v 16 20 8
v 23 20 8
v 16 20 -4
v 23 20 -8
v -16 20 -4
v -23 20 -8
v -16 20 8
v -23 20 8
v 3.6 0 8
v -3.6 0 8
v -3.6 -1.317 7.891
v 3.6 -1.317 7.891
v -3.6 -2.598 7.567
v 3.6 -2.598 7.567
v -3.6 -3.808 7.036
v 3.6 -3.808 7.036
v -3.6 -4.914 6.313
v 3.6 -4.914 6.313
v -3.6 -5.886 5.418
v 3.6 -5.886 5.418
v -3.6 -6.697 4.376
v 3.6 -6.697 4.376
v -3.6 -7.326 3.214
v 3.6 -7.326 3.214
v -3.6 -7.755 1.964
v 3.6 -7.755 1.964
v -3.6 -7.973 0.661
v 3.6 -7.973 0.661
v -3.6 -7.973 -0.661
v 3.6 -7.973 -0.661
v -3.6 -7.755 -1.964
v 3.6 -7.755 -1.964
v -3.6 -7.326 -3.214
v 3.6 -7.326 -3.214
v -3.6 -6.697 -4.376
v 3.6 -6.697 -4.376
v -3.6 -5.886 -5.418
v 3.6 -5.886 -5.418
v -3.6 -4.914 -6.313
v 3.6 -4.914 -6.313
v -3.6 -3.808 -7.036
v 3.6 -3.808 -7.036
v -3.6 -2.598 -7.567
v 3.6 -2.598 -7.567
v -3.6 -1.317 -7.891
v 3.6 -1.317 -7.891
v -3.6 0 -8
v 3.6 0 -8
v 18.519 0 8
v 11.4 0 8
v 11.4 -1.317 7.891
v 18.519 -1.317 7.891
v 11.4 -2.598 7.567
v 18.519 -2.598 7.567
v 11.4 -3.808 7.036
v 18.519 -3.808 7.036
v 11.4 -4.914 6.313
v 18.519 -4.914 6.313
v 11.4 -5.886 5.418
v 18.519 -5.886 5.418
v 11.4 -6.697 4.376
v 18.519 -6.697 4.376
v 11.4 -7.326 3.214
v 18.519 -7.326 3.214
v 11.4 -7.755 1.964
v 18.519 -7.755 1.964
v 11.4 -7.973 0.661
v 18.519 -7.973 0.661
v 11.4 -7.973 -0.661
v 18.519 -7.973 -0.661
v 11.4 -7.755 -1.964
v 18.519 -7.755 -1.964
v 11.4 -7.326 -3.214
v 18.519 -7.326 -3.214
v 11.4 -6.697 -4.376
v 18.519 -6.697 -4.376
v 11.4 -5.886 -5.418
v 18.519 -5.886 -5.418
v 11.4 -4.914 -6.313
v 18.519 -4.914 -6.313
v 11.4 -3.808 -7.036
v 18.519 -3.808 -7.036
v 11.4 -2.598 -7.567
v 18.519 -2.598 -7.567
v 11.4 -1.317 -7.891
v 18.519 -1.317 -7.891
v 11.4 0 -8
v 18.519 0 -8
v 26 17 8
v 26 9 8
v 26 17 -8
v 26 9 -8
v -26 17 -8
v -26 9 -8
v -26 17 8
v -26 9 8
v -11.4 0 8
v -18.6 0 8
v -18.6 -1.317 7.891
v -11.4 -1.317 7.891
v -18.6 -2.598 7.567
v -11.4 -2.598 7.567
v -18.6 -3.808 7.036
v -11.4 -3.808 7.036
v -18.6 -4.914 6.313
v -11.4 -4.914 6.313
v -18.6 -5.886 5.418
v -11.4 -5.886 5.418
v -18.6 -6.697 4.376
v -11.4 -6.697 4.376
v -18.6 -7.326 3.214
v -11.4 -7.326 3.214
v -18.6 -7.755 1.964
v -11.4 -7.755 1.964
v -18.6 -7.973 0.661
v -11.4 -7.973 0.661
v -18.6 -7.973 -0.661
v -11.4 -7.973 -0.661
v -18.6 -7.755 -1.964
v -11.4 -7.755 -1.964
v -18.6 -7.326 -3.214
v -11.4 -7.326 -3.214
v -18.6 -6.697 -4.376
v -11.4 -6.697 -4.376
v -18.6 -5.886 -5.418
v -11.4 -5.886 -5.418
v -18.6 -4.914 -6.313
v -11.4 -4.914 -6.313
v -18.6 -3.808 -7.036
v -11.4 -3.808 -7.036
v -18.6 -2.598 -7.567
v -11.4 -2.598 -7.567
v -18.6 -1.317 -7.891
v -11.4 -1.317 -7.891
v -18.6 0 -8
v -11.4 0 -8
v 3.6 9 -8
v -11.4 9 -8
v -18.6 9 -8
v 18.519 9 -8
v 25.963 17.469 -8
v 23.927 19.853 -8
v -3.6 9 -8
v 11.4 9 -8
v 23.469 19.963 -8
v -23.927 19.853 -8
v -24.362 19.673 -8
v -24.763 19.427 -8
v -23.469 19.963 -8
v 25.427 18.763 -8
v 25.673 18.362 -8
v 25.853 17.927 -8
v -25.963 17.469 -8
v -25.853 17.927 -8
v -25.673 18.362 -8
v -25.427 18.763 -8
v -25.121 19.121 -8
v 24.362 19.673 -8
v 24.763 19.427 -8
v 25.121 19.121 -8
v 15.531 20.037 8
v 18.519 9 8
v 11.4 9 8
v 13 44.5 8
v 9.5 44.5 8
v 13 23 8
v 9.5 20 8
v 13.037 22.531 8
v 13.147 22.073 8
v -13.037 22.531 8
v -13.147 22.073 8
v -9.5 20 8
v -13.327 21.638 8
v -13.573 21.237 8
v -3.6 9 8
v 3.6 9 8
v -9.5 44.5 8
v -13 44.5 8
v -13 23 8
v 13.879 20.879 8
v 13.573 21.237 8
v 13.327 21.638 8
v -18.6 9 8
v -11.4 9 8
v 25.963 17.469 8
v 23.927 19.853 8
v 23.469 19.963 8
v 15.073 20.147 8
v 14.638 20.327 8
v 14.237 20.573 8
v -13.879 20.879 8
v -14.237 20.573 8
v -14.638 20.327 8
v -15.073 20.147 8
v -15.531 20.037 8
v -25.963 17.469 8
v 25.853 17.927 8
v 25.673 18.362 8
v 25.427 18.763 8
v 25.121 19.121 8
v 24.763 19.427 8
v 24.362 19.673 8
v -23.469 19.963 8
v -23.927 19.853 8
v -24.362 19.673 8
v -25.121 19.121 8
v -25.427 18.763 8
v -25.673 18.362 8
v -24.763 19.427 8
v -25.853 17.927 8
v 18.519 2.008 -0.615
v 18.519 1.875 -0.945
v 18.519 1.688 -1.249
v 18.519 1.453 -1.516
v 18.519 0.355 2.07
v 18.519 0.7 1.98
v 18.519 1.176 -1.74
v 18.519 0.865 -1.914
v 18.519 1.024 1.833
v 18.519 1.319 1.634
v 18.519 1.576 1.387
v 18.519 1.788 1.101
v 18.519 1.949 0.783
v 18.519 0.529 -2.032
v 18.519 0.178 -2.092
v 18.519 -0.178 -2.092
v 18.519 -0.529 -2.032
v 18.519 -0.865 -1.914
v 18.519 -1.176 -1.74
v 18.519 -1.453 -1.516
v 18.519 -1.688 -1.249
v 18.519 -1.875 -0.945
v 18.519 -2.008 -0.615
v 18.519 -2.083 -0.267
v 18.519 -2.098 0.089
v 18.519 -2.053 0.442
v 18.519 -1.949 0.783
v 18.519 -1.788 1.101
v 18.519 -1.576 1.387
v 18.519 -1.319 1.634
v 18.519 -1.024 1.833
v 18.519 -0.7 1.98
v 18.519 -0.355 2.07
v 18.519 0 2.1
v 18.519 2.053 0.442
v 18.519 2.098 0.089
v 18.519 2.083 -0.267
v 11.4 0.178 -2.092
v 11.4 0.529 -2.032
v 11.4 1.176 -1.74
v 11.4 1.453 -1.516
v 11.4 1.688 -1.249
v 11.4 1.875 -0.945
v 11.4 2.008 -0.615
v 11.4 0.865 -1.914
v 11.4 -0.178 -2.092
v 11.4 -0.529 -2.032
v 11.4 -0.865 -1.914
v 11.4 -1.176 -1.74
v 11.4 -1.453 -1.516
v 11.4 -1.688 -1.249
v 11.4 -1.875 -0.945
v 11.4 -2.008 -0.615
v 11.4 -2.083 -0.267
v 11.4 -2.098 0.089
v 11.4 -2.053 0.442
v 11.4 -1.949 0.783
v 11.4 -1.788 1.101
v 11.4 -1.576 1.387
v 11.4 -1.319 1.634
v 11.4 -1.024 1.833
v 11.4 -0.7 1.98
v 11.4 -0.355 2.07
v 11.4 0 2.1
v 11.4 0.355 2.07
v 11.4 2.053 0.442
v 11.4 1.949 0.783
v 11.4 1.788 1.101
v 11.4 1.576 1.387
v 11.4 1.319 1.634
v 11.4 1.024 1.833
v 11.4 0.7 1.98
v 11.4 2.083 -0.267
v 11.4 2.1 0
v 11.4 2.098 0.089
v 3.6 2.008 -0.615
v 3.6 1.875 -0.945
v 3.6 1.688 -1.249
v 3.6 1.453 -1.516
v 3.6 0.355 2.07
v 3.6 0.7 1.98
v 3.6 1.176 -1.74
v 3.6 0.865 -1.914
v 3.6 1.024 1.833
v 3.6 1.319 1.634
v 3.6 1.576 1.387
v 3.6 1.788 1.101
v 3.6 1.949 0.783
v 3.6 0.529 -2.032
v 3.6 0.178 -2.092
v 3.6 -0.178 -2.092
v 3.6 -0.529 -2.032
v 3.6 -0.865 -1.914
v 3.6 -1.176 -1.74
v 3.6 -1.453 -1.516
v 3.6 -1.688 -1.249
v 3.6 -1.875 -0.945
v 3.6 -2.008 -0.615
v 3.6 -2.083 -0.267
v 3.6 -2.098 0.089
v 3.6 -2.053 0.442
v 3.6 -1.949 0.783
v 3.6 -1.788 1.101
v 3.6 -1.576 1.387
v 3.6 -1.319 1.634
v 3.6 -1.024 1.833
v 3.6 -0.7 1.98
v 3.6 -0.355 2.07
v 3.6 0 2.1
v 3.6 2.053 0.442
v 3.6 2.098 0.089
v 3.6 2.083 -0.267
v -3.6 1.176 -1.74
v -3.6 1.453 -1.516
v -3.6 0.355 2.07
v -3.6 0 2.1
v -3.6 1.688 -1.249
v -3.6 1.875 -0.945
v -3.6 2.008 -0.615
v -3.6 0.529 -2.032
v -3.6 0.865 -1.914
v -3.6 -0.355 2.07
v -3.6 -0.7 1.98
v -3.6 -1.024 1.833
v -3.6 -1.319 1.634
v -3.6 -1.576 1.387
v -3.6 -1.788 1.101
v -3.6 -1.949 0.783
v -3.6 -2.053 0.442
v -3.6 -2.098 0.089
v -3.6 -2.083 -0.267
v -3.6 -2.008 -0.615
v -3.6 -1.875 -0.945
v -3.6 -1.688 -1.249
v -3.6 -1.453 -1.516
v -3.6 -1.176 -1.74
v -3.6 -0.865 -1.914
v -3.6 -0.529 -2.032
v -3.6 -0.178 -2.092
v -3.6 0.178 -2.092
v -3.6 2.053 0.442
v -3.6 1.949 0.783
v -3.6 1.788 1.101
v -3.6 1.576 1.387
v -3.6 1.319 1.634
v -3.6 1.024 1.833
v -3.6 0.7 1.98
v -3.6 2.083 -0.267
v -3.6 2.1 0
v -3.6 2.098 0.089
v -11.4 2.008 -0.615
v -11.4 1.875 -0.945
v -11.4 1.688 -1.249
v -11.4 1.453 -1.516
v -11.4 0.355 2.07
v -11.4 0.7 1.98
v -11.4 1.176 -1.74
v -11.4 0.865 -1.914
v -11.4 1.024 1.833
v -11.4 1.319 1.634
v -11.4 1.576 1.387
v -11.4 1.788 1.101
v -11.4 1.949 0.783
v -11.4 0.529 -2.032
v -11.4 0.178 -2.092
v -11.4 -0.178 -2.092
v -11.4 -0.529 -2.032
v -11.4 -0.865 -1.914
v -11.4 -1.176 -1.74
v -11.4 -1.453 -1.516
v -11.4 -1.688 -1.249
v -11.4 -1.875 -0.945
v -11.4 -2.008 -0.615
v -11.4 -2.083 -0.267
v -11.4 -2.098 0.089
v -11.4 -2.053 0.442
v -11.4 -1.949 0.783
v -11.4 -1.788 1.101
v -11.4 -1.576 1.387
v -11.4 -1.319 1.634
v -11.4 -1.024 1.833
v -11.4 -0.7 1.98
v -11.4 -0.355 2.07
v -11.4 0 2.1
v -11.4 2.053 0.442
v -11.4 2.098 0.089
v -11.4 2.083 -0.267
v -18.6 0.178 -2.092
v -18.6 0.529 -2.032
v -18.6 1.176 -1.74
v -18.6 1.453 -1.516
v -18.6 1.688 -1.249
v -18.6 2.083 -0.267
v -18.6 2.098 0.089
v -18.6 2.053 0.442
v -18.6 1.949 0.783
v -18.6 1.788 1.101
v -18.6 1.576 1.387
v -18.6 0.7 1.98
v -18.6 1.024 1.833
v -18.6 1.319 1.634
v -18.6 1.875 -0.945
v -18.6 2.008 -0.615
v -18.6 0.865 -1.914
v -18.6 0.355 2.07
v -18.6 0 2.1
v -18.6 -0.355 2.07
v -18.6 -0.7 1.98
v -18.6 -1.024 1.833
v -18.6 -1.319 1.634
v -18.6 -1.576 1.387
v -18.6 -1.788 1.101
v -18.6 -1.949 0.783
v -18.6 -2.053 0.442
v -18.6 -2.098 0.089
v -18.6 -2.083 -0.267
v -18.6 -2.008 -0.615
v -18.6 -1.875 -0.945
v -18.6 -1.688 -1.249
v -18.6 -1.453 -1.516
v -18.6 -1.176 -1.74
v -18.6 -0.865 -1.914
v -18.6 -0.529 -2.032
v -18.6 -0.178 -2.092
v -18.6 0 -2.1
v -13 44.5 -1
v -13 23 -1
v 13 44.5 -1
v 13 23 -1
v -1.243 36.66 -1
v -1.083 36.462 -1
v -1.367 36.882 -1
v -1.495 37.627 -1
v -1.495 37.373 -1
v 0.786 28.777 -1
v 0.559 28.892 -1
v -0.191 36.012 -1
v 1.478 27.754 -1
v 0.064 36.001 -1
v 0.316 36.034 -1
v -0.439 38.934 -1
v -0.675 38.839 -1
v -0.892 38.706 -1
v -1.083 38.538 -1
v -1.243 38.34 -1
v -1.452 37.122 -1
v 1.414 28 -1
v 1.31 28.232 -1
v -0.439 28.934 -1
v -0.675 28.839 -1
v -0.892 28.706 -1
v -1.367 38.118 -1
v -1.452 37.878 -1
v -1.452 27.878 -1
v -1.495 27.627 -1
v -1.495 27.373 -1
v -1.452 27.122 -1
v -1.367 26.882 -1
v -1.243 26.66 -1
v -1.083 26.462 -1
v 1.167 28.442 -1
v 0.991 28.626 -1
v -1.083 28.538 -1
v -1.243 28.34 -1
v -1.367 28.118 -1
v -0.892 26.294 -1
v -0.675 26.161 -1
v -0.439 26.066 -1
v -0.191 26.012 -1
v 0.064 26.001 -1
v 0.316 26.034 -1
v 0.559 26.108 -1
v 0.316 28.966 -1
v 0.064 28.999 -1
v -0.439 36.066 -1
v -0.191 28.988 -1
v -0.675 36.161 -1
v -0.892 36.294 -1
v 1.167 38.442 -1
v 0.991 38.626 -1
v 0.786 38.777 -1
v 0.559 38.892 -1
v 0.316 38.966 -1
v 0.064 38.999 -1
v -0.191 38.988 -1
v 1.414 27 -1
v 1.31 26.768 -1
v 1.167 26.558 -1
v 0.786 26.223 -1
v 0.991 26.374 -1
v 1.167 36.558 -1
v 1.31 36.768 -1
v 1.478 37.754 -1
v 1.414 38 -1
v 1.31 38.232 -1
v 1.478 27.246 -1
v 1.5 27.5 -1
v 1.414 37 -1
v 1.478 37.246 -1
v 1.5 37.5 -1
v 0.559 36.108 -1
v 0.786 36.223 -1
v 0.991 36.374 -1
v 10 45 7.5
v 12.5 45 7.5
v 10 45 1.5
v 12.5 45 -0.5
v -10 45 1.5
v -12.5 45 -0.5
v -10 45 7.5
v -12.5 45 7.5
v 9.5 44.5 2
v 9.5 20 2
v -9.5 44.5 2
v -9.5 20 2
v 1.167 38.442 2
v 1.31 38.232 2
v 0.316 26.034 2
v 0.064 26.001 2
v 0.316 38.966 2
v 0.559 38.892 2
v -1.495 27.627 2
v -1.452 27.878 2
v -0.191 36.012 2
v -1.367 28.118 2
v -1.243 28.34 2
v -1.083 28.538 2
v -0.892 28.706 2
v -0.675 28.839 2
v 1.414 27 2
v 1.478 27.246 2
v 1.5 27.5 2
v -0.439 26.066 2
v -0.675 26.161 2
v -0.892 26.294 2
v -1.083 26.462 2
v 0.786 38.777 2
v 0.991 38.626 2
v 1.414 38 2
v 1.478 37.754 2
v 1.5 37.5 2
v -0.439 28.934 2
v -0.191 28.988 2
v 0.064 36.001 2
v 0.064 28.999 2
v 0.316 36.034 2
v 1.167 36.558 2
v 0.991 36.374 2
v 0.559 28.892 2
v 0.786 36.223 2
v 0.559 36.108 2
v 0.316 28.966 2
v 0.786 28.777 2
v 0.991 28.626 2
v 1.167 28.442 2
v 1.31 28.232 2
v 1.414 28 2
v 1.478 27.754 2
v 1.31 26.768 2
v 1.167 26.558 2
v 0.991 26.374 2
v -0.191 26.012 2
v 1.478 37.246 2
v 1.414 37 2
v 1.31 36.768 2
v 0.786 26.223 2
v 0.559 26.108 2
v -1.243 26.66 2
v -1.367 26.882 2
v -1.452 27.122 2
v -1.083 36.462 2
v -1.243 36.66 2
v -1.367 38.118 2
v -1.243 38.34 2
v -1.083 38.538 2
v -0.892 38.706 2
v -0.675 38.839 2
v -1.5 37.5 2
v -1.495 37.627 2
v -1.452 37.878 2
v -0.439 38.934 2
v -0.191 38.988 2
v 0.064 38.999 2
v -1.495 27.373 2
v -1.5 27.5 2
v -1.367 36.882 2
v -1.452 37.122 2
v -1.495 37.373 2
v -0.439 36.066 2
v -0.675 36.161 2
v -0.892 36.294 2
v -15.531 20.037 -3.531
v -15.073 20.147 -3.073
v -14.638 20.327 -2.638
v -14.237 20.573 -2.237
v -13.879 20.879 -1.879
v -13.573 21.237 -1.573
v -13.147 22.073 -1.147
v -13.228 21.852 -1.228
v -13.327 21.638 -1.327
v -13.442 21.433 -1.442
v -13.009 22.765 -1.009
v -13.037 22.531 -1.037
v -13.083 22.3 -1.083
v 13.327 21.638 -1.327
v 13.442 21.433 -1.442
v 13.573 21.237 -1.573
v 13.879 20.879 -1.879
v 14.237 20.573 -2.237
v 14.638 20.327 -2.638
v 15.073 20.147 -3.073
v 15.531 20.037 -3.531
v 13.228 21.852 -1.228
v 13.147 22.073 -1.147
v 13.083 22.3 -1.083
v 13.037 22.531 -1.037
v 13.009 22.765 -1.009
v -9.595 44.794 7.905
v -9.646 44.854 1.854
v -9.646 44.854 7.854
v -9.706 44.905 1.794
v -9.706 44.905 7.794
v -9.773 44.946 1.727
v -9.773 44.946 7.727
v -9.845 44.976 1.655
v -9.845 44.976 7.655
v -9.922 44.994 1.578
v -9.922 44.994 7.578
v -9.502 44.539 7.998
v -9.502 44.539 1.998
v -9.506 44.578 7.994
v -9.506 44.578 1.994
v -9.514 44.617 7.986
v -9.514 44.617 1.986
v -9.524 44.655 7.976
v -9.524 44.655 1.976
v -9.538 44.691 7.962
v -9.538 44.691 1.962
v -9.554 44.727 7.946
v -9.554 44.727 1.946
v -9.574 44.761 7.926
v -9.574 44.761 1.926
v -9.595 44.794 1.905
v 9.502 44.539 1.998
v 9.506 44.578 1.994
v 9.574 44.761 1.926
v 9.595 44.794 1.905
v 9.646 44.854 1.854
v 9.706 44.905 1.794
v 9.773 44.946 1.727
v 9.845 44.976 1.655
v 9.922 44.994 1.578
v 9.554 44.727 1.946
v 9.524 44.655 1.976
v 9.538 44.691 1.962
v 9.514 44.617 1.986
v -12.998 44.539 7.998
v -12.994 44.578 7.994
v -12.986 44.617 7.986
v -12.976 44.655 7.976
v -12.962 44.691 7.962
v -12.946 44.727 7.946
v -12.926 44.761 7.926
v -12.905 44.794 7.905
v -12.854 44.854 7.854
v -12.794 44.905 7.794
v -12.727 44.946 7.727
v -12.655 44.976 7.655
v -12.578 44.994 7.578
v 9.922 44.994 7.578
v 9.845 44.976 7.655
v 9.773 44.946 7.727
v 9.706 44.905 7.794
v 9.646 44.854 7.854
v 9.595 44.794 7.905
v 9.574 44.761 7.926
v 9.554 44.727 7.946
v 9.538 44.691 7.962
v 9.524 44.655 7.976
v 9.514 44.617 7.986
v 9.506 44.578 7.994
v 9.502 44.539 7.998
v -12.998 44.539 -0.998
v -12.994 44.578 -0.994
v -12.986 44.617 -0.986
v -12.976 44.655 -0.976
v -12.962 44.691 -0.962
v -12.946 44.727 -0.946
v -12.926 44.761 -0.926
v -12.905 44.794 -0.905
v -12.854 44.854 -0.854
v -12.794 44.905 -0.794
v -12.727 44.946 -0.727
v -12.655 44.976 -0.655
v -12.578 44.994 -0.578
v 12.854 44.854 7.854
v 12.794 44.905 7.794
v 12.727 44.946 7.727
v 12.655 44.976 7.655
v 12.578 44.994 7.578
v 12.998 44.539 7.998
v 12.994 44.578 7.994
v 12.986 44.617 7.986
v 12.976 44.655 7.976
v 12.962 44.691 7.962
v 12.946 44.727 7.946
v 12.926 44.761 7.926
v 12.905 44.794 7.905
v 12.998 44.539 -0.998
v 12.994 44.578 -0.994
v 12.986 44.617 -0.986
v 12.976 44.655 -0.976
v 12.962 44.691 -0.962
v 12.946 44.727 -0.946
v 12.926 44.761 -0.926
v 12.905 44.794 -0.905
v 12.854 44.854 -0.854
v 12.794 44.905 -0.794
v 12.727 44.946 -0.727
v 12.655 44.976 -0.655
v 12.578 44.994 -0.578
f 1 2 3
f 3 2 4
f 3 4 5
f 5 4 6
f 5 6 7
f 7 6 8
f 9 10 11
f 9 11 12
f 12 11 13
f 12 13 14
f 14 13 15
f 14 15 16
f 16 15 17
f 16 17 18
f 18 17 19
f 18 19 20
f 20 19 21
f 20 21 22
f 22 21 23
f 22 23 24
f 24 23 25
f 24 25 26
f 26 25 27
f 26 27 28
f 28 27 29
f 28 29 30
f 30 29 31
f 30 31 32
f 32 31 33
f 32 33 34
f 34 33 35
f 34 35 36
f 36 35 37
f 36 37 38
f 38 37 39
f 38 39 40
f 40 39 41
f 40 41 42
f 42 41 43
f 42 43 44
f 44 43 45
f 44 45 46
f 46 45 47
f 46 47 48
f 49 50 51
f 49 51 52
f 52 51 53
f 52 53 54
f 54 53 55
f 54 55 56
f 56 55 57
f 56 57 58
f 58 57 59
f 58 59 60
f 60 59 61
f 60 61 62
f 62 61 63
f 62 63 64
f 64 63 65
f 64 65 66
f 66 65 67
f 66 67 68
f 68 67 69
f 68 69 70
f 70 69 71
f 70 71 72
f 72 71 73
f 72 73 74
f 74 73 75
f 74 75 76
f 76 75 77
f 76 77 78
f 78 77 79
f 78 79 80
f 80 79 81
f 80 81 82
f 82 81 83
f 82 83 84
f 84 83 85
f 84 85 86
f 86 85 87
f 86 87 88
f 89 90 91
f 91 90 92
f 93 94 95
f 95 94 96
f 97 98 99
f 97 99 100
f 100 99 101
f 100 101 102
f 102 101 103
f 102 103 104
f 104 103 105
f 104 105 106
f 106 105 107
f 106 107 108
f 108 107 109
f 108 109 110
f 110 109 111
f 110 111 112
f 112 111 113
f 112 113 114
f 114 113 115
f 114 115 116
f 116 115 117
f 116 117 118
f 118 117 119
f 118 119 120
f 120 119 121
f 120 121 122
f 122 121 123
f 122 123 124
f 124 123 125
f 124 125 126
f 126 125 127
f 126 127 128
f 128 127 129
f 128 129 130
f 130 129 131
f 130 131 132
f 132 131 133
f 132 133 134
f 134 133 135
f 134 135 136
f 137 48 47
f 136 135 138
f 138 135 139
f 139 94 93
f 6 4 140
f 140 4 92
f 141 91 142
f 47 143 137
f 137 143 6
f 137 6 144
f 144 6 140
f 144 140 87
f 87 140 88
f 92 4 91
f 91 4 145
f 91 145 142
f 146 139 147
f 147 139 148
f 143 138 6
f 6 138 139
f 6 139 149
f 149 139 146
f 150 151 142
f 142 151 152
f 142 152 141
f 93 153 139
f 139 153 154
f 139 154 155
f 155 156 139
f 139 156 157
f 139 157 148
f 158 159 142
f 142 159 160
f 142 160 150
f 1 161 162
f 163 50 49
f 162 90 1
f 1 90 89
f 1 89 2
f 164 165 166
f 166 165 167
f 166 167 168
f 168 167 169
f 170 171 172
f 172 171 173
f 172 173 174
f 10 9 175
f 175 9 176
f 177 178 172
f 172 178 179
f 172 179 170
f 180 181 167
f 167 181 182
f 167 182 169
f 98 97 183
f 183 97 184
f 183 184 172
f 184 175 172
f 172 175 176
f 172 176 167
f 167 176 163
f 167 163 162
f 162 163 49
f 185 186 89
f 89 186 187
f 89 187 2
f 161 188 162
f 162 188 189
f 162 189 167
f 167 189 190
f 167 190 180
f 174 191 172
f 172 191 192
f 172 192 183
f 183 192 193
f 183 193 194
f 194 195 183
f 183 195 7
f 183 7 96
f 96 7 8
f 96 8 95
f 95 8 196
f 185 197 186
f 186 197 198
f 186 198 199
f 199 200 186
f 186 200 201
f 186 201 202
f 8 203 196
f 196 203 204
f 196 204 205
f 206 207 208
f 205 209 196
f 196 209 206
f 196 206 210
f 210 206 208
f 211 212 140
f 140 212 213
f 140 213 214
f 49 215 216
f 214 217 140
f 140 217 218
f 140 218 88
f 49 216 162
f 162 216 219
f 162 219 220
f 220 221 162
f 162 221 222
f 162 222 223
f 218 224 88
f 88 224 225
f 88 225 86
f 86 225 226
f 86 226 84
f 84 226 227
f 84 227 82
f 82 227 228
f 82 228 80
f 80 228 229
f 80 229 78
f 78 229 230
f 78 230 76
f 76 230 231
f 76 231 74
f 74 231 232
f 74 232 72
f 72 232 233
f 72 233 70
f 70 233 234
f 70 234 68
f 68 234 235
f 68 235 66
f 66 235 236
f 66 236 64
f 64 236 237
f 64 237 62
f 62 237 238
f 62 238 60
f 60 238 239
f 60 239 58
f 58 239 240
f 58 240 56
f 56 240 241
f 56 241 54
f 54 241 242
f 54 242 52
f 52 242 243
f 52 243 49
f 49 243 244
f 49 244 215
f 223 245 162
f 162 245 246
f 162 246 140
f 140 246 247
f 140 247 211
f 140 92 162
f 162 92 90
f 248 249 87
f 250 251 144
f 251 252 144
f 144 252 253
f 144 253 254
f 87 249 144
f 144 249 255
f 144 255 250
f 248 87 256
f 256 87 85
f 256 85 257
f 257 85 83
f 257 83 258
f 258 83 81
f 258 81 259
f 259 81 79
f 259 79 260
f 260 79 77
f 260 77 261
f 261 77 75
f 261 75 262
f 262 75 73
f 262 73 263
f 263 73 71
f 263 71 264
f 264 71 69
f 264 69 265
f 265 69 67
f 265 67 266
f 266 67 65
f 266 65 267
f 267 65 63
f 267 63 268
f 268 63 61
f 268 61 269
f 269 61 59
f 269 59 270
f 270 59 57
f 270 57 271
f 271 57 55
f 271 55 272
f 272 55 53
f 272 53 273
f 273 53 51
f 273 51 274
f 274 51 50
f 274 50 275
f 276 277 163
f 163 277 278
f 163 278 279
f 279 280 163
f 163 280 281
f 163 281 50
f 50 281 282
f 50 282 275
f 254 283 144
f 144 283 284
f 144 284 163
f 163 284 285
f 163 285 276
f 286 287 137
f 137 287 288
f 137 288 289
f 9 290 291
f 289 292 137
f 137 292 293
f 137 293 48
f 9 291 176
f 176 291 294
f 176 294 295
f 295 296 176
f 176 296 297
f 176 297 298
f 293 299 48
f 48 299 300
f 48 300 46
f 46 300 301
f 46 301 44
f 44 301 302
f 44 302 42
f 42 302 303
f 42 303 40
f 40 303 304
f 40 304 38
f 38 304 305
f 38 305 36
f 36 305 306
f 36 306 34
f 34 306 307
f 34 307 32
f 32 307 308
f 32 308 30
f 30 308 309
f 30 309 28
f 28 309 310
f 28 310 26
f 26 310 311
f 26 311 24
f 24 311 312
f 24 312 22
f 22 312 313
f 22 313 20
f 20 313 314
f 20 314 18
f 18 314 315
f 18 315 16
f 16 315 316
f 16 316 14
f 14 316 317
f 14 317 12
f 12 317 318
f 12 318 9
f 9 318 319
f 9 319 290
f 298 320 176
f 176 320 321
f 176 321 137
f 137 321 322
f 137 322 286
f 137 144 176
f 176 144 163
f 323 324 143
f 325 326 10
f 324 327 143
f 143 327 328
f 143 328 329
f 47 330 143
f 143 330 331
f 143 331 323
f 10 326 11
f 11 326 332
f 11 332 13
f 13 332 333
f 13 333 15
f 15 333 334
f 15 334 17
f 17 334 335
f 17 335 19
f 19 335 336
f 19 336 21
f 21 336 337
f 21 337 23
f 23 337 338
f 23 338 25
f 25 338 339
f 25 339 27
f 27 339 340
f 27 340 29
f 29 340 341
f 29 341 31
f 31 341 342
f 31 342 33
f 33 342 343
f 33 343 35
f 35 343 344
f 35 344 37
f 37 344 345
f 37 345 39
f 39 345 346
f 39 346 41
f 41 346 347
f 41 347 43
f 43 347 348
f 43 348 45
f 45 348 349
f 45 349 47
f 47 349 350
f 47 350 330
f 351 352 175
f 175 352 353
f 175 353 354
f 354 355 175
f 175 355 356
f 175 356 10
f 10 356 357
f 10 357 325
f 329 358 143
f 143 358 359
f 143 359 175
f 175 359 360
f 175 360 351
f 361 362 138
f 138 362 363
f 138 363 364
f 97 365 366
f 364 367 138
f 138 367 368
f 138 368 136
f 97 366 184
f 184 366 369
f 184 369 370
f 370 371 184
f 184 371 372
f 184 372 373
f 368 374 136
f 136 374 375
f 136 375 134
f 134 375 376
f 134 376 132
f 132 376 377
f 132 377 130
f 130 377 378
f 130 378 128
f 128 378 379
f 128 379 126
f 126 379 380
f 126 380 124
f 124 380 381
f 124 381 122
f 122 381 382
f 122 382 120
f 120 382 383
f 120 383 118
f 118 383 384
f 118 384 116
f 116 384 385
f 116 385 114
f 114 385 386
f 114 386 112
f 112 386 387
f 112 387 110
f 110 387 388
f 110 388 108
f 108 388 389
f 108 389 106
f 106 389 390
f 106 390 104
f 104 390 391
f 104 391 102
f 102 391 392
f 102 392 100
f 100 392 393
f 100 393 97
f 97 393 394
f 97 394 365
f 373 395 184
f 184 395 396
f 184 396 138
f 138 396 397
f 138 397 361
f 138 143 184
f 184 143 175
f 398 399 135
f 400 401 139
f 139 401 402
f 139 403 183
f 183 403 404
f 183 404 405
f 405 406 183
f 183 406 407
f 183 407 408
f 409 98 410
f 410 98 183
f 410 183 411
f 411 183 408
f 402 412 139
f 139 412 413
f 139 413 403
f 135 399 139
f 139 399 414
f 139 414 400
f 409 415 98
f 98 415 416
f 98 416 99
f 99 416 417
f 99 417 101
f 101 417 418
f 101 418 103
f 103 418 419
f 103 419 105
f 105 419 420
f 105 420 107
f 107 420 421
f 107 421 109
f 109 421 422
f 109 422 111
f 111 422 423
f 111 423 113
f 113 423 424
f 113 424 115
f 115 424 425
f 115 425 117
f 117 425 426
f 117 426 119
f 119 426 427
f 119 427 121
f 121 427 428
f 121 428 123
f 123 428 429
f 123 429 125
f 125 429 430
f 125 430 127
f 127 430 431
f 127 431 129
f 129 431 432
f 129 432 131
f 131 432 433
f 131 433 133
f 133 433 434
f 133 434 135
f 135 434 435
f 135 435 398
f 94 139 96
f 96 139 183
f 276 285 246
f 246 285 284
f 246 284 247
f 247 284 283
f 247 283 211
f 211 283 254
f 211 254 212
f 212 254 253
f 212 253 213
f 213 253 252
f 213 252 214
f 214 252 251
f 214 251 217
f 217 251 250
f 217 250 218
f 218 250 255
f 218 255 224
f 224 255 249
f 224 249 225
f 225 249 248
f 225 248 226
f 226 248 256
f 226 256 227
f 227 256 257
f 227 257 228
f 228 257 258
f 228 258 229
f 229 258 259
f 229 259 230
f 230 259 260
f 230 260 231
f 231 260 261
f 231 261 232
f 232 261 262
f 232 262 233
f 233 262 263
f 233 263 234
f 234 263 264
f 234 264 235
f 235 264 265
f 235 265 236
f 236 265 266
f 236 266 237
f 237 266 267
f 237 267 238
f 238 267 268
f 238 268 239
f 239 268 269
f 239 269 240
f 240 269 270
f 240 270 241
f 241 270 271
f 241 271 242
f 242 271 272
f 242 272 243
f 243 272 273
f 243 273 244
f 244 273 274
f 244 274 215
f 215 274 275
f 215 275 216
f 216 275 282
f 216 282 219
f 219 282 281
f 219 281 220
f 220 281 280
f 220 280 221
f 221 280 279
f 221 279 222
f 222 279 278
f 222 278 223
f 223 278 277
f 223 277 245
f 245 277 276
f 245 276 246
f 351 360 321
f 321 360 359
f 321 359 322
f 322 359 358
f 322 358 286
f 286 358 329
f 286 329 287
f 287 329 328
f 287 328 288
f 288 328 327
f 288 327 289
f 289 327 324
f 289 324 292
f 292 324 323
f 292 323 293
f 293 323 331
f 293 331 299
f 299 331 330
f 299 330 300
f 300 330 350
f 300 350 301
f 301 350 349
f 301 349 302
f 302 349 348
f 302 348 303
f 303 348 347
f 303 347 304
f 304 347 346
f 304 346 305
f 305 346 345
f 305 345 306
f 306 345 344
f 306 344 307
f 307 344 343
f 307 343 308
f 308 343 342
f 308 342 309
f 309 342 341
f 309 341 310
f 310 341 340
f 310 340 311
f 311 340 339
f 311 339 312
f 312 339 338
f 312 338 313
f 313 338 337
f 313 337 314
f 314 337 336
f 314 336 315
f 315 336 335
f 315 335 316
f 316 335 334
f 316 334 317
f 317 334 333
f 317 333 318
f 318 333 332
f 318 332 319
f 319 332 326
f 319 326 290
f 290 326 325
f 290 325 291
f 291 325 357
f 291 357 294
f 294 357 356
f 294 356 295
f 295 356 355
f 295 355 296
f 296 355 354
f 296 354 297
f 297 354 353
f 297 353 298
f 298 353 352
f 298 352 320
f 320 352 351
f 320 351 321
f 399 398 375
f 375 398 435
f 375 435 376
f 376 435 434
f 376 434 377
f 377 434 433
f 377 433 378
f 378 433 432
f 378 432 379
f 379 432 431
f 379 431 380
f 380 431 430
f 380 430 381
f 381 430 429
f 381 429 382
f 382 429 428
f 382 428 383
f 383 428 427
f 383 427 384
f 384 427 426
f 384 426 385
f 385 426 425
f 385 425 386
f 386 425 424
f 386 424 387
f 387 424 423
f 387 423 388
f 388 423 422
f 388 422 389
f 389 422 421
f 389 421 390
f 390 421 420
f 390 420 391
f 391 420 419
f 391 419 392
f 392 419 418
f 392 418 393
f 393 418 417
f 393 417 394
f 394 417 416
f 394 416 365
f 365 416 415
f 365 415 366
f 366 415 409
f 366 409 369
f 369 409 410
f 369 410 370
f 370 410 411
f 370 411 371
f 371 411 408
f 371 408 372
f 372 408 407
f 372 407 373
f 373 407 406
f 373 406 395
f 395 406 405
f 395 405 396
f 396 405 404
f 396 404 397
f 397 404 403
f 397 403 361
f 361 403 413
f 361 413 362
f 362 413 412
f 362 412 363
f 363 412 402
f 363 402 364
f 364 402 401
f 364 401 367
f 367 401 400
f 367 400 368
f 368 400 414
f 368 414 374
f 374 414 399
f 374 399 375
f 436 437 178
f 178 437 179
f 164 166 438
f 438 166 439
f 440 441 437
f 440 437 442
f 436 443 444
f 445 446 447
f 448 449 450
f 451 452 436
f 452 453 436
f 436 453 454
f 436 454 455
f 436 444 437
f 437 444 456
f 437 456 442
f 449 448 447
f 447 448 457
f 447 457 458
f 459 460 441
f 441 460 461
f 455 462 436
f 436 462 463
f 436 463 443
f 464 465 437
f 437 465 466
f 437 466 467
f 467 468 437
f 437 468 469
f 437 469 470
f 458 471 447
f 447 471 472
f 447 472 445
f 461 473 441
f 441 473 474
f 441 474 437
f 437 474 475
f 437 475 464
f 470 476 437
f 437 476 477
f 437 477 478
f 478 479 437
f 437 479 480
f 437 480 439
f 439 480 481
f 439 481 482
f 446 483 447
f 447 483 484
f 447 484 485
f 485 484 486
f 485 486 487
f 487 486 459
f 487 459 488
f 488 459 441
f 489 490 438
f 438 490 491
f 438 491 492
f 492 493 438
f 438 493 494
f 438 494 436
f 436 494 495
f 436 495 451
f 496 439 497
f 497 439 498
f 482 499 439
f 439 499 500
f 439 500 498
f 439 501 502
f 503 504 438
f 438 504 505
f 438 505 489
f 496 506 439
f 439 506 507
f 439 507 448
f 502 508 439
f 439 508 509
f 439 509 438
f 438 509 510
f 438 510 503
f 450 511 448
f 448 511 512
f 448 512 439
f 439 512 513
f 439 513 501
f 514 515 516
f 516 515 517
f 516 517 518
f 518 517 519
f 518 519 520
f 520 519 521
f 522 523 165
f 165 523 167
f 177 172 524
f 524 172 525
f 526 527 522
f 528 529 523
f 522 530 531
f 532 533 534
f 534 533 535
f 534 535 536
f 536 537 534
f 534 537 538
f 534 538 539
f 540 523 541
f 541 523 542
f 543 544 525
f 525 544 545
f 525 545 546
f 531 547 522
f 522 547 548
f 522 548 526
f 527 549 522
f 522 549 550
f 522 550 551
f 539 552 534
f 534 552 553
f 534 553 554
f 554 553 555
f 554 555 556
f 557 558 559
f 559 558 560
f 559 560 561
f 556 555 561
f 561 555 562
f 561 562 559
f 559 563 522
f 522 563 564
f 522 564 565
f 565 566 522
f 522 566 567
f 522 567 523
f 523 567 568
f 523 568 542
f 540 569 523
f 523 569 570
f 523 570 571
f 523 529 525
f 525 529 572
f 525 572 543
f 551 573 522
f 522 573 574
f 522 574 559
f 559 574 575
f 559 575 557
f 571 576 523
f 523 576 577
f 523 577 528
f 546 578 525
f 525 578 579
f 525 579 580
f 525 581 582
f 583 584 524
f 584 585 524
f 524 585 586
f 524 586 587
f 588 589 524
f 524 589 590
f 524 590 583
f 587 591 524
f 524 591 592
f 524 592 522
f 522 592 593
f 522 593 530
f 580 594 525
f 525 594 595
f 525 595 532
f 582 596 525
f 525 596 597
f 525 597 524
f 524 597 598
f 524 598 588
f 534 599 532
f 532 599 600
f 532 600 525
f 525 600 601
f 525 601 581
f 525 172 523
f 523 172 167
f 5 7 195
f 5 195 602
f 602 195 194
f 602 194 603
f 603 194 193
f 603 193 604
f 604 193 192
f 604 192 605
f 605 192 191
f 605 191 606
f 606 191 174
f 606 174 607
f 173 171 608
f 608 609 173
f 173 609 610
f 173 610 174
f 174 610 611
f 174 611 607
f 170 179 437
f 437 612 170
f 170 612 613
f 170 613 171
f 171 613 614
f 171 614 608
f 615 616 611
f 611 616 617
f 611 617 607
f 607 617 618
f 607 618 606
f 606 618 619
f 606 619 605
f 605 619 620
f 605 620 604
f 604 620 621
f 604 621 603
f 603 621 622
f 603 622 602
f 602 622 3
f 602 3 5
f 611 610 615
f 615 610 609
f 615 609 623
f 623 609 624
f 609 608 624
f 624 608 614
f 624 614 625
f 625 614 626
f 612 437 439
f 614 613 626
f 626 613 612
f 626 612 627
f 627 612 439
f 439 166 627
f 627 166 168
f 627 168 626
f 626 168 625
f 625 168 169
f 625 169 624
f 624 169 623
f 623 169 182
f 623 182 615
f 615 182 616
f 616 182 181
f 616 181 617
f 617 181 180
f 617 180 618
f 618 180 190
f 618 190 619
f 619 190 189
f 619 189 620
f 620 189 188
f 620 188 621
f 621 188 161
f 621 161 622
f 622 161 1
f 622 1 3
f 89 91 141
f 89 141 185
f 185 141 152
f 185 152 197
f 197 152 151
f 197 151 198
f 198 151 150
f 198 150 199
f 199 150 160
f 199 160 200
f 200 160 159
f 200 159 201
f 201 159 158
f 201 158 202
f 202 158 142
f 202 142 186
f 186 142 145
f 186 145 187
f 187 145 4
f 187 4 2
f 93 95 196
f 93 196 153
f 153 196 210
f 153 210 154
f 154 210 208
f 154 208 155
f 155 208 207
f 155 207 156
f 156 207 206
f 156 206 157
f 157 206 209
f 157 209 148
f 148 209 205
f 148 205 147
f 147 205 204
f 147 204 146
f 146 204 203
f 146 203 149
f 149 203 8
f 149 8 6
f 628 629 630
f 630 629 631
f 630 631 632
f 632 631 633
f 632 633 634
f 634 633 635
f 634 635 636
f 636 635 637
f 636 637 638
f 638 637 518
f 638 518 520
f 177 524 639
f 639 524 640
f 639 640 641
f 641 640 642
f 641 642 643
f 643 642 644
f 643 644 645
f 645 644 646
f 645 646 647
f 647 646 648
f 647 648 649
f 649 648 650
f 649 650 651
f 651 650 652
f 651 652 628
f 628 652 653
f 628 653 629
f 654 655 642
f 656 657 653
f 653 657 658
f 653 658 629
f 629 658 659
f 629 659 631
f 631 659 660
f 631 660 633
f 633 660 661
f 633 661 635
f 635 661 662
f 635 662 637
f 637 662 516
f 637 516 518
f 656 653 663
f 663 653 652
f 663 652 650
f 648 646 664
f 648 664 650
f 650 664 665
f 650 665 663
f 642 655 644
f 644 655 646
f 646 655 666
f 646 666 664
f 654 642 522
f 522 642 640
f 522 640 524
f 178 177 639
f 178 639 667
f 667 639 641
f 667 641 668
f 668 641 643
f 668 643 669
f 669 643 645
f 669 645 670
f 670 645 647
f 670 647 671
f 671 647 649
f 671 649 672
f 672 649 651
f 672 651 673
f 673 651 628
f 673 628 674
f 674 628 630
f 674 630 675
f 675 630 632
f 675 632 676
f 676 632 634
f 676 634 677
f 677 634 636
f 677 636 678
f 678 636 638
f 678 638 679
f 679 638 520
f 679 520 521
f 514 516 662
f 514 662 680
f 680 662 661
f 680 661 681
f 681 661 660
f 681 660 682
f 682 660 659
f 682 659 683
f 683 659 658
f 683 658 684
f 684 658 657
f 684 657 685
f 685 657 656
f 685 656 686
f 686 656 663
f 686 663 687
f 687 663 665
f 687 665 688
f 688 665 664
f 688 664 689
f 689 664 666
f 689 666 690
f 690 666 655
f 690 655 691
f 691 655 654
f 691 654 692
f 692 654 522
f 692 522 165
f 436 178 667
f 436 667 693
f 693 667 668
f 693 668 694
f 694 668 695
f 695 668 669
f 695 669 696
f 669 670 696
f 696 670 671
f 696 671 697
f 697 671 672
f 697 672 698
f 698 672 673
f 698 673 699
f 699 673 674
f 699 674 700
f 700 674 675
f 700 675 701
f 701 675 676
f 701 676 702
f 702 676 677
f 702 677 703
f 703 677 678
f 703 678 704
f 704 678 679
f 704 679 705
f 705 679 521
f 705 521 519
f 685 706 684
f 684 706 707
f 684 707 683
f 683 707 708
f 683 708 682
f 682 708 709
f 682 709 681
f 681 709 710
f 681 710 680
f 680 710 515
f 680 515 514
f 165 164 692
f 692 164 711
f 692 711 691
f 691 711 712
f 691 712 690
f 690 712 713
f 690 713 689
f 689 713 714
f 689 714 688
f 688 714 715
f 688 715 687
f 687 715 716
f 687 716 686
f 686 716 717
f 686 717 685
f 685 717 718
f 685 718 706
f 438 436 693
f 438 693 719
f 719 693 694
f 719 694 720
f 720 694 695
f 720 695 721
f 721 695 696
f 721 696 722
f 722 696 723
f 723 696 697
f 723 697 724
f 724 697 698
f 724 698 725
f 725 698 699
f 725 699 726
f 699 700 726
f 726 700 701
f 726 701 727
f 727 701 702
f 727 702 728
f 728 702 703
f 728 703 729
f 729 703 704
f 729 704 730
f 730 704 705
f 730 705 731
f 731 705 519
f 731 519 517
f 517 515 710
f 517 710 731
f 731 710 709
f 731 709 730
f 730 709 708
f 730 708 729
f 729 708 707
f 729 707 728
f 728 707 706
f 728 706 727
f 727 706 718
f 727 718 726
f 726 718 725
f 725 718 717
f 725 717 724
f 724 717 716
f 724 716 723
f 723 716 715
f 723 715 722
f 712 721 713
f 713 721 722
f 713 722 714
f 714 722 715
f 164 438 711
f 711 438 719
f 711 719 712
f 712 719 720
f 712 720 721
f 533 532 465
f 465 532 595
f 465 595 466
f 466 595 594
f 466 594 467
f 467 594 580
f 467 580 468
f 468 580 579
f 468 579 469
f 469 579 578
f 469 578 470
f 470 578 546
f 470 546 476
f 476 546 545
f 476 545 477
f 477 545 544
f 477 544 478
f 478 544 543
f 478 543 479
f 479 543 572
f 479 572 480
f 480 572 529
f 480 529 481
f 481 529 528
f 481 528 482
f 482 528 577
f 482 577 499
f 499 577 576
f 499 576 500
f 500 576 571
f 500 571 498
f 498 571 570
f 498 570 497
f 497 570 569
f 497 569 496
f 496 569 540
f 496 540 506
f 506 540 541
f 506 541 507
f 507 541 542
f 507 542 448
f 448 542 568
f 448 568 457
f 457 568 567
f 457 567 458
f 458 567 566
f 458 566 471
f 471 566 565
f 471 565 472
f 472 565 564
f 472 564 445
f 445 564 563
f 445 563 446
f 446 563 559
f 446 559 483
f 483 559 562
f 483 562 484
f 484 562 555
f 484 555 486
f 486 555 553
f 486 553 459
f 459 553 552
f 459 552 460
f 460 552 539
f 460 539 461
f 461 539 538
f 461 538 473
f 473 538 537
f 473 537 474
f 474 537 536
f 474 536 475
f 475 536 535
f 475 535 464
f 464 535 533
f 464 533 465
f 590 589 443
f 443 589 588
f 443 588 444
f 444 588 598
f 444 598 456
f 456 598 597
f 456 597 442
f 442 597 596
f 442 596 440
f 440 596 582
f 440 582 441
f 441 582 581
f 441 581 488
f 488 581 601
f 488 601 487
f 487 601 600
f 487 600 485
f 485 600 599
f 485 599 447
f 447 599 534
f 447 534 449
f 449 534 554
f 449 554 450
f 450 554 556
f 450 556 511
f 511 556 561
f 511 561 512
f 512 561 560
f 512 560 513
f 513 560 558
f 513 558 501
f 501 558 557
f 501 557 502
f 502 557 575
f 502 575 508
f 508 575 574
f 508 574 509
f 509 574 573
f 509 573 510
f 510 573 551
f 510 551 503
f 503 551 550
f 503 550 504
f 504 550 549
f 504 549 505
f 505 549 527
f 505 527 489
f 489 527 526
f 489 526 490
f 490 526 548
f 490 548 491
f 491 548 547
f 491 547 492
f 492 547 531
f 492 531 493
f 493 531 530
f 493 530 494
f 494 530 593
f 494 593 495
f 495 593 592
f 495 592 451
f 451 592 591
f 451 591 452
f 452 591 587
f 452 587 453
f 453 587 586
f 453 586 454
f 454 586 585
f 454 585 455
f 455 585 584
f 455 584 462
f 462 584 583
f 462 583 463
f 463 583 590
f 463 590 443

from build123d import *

# Parameters (mm, degrees)
SKETCH2_R           = 2.1
BOSS_EXTRUDE1_DEPTH = 26
SKETCH3_W           = 7.4
SKETCH3_H           = 18
SKETCH3_W_2         = 7.8
SKETCH3_W_3         = 7.481047655
CUT_EXTRUDE1_DEPTH  = 17
SKETCH4_W           = 26
SKETCH4_H           = 9
BOSS_EXTRUDE2_DEPTH = 25
SKETCH5_W           = 19
SKETCH5_H           = 6
CUT_EXTRUDE2_DEPTH  = 25
FILLET1_R           = 3
FILLET2_R           = 3
FILLET3_R           = 0.5
SKETCH6_R           = 1.5
CUT_EXTRUDE3_DEPTH  = 12.5


with BuildPart() as part:
    # Sketch2 → Boss-Extrude1 (new body, symmetric)
    with BuildSketch(Plane(origin=(0, 0, 0), x_dir=(0, 0, -1), z_dir=(1, 0, 0))):
        with BuildLine():
            Line((-8, 0), (-8, 20))
            Line((-8, 20), (8, 20))
            Line((8, 20), (8, 0))
            ThreePointArc((8, 0), (0, -8), (-8, 0))
        make_face()
        Circle(SKETCH2_R, mode=Mode.SUBTRACT)
    extrude(amount=BOSS_EXTRUDE1_DEPTH, both=True)

    # Sketch3 → Cut-Extrude1 (cut, through all)
    with BuildSketch(Plane.XY.offset(8)):
        with Locations((-22.3, 0)):
            Rectangle(SKETCH3_W, SKETCH3_H)
        with Locations((-7.5, 0)):
            Rectangle(SKETCH3_W_2, SKETCH3_H)
        with Locations((7.5, 0)):
            Rectangle(SKETCH3_W_2, SKETCH3_H)
        with Locations((22.259476173, 0)):
            Rectangle(SKETCH3_W_3, SKETCH3_H)
    extrude(amount=-CUT_EXTRUDE1_DEPTH, mode=Mode.SUBTRACT)

    # Sketch4 → Boss-Extrude2 (add)
    with BuildSketch(Plane(origin=(0, 20, 0), x_dir=(1, 0, 0), z_dir=(0, 1, 0))):
        with Locations((0, -3.5)):
            Rectangle(SKETCH4_W, SKETCH4_H)
    extrude(amount=BOSS_EXTRUDE2_DEPTH)

    # Sketch5 → Cut-Extrude2 (cut)
    with BuildSketch(Plane(origin=(0, 45, 0), x_dir=(1, 0, 0), z_dir=(0, 1, 0))):
        with Locations((0, -5)):
            Rectangle(SKETCH5_W, SKETCH5_H)
    extrude(amount=-CUT_EXTRUDE2_DEPTH, mode=Mode.SUBTRACT)

    # Fillet1
    fillet1_edges = [part.edges().sort_by_distance(p)[0] for p in [
        (-13, 20, 3.5),
        (13, 20, 3.5),
        (0, 20, -1),
    ]]
    fillet(fillet1_edges, radius=FILLET1_R)

    # Fillet2
    fillet2_edges = [part.edges().sort_by_distance(p)[0] for p in [
        (26, 20, 0),
        (-26, 20, 0),
    ]]
    fillet(fillet2_edges, radius=FILLET2_R)

    # Fillet3
    fillet3_edges = [part.edges().sort_by_distance(p)[0] for p in [
        (-13, 45, 3.5),
        (-11.25, 45, 8),
        (13, 45, 3.5),
        (0, 45, -1),
        (11.25, 45, 8),
        (9.5, 45, 5),
        (0, 45, 2),
        (-9.5, 45, 5),
    ]]
    fillet(fillet3_edges, radius=FILLET3_R)

    # Sketch6 → Cut-Extrude3 (cut, symmetric)
    with BuildSketch(Plane.XY):
        with Locations((0, 37.5)):
            Circle(SKETCH6_R)
        with Locations((0, 27.5)):
            Circle(SKETCH6_R)
    extrude(amount=CUT_EXTRUDE3_DEPTH, both=True, mode=Mode.SUBTRACT)


solid = part.part
